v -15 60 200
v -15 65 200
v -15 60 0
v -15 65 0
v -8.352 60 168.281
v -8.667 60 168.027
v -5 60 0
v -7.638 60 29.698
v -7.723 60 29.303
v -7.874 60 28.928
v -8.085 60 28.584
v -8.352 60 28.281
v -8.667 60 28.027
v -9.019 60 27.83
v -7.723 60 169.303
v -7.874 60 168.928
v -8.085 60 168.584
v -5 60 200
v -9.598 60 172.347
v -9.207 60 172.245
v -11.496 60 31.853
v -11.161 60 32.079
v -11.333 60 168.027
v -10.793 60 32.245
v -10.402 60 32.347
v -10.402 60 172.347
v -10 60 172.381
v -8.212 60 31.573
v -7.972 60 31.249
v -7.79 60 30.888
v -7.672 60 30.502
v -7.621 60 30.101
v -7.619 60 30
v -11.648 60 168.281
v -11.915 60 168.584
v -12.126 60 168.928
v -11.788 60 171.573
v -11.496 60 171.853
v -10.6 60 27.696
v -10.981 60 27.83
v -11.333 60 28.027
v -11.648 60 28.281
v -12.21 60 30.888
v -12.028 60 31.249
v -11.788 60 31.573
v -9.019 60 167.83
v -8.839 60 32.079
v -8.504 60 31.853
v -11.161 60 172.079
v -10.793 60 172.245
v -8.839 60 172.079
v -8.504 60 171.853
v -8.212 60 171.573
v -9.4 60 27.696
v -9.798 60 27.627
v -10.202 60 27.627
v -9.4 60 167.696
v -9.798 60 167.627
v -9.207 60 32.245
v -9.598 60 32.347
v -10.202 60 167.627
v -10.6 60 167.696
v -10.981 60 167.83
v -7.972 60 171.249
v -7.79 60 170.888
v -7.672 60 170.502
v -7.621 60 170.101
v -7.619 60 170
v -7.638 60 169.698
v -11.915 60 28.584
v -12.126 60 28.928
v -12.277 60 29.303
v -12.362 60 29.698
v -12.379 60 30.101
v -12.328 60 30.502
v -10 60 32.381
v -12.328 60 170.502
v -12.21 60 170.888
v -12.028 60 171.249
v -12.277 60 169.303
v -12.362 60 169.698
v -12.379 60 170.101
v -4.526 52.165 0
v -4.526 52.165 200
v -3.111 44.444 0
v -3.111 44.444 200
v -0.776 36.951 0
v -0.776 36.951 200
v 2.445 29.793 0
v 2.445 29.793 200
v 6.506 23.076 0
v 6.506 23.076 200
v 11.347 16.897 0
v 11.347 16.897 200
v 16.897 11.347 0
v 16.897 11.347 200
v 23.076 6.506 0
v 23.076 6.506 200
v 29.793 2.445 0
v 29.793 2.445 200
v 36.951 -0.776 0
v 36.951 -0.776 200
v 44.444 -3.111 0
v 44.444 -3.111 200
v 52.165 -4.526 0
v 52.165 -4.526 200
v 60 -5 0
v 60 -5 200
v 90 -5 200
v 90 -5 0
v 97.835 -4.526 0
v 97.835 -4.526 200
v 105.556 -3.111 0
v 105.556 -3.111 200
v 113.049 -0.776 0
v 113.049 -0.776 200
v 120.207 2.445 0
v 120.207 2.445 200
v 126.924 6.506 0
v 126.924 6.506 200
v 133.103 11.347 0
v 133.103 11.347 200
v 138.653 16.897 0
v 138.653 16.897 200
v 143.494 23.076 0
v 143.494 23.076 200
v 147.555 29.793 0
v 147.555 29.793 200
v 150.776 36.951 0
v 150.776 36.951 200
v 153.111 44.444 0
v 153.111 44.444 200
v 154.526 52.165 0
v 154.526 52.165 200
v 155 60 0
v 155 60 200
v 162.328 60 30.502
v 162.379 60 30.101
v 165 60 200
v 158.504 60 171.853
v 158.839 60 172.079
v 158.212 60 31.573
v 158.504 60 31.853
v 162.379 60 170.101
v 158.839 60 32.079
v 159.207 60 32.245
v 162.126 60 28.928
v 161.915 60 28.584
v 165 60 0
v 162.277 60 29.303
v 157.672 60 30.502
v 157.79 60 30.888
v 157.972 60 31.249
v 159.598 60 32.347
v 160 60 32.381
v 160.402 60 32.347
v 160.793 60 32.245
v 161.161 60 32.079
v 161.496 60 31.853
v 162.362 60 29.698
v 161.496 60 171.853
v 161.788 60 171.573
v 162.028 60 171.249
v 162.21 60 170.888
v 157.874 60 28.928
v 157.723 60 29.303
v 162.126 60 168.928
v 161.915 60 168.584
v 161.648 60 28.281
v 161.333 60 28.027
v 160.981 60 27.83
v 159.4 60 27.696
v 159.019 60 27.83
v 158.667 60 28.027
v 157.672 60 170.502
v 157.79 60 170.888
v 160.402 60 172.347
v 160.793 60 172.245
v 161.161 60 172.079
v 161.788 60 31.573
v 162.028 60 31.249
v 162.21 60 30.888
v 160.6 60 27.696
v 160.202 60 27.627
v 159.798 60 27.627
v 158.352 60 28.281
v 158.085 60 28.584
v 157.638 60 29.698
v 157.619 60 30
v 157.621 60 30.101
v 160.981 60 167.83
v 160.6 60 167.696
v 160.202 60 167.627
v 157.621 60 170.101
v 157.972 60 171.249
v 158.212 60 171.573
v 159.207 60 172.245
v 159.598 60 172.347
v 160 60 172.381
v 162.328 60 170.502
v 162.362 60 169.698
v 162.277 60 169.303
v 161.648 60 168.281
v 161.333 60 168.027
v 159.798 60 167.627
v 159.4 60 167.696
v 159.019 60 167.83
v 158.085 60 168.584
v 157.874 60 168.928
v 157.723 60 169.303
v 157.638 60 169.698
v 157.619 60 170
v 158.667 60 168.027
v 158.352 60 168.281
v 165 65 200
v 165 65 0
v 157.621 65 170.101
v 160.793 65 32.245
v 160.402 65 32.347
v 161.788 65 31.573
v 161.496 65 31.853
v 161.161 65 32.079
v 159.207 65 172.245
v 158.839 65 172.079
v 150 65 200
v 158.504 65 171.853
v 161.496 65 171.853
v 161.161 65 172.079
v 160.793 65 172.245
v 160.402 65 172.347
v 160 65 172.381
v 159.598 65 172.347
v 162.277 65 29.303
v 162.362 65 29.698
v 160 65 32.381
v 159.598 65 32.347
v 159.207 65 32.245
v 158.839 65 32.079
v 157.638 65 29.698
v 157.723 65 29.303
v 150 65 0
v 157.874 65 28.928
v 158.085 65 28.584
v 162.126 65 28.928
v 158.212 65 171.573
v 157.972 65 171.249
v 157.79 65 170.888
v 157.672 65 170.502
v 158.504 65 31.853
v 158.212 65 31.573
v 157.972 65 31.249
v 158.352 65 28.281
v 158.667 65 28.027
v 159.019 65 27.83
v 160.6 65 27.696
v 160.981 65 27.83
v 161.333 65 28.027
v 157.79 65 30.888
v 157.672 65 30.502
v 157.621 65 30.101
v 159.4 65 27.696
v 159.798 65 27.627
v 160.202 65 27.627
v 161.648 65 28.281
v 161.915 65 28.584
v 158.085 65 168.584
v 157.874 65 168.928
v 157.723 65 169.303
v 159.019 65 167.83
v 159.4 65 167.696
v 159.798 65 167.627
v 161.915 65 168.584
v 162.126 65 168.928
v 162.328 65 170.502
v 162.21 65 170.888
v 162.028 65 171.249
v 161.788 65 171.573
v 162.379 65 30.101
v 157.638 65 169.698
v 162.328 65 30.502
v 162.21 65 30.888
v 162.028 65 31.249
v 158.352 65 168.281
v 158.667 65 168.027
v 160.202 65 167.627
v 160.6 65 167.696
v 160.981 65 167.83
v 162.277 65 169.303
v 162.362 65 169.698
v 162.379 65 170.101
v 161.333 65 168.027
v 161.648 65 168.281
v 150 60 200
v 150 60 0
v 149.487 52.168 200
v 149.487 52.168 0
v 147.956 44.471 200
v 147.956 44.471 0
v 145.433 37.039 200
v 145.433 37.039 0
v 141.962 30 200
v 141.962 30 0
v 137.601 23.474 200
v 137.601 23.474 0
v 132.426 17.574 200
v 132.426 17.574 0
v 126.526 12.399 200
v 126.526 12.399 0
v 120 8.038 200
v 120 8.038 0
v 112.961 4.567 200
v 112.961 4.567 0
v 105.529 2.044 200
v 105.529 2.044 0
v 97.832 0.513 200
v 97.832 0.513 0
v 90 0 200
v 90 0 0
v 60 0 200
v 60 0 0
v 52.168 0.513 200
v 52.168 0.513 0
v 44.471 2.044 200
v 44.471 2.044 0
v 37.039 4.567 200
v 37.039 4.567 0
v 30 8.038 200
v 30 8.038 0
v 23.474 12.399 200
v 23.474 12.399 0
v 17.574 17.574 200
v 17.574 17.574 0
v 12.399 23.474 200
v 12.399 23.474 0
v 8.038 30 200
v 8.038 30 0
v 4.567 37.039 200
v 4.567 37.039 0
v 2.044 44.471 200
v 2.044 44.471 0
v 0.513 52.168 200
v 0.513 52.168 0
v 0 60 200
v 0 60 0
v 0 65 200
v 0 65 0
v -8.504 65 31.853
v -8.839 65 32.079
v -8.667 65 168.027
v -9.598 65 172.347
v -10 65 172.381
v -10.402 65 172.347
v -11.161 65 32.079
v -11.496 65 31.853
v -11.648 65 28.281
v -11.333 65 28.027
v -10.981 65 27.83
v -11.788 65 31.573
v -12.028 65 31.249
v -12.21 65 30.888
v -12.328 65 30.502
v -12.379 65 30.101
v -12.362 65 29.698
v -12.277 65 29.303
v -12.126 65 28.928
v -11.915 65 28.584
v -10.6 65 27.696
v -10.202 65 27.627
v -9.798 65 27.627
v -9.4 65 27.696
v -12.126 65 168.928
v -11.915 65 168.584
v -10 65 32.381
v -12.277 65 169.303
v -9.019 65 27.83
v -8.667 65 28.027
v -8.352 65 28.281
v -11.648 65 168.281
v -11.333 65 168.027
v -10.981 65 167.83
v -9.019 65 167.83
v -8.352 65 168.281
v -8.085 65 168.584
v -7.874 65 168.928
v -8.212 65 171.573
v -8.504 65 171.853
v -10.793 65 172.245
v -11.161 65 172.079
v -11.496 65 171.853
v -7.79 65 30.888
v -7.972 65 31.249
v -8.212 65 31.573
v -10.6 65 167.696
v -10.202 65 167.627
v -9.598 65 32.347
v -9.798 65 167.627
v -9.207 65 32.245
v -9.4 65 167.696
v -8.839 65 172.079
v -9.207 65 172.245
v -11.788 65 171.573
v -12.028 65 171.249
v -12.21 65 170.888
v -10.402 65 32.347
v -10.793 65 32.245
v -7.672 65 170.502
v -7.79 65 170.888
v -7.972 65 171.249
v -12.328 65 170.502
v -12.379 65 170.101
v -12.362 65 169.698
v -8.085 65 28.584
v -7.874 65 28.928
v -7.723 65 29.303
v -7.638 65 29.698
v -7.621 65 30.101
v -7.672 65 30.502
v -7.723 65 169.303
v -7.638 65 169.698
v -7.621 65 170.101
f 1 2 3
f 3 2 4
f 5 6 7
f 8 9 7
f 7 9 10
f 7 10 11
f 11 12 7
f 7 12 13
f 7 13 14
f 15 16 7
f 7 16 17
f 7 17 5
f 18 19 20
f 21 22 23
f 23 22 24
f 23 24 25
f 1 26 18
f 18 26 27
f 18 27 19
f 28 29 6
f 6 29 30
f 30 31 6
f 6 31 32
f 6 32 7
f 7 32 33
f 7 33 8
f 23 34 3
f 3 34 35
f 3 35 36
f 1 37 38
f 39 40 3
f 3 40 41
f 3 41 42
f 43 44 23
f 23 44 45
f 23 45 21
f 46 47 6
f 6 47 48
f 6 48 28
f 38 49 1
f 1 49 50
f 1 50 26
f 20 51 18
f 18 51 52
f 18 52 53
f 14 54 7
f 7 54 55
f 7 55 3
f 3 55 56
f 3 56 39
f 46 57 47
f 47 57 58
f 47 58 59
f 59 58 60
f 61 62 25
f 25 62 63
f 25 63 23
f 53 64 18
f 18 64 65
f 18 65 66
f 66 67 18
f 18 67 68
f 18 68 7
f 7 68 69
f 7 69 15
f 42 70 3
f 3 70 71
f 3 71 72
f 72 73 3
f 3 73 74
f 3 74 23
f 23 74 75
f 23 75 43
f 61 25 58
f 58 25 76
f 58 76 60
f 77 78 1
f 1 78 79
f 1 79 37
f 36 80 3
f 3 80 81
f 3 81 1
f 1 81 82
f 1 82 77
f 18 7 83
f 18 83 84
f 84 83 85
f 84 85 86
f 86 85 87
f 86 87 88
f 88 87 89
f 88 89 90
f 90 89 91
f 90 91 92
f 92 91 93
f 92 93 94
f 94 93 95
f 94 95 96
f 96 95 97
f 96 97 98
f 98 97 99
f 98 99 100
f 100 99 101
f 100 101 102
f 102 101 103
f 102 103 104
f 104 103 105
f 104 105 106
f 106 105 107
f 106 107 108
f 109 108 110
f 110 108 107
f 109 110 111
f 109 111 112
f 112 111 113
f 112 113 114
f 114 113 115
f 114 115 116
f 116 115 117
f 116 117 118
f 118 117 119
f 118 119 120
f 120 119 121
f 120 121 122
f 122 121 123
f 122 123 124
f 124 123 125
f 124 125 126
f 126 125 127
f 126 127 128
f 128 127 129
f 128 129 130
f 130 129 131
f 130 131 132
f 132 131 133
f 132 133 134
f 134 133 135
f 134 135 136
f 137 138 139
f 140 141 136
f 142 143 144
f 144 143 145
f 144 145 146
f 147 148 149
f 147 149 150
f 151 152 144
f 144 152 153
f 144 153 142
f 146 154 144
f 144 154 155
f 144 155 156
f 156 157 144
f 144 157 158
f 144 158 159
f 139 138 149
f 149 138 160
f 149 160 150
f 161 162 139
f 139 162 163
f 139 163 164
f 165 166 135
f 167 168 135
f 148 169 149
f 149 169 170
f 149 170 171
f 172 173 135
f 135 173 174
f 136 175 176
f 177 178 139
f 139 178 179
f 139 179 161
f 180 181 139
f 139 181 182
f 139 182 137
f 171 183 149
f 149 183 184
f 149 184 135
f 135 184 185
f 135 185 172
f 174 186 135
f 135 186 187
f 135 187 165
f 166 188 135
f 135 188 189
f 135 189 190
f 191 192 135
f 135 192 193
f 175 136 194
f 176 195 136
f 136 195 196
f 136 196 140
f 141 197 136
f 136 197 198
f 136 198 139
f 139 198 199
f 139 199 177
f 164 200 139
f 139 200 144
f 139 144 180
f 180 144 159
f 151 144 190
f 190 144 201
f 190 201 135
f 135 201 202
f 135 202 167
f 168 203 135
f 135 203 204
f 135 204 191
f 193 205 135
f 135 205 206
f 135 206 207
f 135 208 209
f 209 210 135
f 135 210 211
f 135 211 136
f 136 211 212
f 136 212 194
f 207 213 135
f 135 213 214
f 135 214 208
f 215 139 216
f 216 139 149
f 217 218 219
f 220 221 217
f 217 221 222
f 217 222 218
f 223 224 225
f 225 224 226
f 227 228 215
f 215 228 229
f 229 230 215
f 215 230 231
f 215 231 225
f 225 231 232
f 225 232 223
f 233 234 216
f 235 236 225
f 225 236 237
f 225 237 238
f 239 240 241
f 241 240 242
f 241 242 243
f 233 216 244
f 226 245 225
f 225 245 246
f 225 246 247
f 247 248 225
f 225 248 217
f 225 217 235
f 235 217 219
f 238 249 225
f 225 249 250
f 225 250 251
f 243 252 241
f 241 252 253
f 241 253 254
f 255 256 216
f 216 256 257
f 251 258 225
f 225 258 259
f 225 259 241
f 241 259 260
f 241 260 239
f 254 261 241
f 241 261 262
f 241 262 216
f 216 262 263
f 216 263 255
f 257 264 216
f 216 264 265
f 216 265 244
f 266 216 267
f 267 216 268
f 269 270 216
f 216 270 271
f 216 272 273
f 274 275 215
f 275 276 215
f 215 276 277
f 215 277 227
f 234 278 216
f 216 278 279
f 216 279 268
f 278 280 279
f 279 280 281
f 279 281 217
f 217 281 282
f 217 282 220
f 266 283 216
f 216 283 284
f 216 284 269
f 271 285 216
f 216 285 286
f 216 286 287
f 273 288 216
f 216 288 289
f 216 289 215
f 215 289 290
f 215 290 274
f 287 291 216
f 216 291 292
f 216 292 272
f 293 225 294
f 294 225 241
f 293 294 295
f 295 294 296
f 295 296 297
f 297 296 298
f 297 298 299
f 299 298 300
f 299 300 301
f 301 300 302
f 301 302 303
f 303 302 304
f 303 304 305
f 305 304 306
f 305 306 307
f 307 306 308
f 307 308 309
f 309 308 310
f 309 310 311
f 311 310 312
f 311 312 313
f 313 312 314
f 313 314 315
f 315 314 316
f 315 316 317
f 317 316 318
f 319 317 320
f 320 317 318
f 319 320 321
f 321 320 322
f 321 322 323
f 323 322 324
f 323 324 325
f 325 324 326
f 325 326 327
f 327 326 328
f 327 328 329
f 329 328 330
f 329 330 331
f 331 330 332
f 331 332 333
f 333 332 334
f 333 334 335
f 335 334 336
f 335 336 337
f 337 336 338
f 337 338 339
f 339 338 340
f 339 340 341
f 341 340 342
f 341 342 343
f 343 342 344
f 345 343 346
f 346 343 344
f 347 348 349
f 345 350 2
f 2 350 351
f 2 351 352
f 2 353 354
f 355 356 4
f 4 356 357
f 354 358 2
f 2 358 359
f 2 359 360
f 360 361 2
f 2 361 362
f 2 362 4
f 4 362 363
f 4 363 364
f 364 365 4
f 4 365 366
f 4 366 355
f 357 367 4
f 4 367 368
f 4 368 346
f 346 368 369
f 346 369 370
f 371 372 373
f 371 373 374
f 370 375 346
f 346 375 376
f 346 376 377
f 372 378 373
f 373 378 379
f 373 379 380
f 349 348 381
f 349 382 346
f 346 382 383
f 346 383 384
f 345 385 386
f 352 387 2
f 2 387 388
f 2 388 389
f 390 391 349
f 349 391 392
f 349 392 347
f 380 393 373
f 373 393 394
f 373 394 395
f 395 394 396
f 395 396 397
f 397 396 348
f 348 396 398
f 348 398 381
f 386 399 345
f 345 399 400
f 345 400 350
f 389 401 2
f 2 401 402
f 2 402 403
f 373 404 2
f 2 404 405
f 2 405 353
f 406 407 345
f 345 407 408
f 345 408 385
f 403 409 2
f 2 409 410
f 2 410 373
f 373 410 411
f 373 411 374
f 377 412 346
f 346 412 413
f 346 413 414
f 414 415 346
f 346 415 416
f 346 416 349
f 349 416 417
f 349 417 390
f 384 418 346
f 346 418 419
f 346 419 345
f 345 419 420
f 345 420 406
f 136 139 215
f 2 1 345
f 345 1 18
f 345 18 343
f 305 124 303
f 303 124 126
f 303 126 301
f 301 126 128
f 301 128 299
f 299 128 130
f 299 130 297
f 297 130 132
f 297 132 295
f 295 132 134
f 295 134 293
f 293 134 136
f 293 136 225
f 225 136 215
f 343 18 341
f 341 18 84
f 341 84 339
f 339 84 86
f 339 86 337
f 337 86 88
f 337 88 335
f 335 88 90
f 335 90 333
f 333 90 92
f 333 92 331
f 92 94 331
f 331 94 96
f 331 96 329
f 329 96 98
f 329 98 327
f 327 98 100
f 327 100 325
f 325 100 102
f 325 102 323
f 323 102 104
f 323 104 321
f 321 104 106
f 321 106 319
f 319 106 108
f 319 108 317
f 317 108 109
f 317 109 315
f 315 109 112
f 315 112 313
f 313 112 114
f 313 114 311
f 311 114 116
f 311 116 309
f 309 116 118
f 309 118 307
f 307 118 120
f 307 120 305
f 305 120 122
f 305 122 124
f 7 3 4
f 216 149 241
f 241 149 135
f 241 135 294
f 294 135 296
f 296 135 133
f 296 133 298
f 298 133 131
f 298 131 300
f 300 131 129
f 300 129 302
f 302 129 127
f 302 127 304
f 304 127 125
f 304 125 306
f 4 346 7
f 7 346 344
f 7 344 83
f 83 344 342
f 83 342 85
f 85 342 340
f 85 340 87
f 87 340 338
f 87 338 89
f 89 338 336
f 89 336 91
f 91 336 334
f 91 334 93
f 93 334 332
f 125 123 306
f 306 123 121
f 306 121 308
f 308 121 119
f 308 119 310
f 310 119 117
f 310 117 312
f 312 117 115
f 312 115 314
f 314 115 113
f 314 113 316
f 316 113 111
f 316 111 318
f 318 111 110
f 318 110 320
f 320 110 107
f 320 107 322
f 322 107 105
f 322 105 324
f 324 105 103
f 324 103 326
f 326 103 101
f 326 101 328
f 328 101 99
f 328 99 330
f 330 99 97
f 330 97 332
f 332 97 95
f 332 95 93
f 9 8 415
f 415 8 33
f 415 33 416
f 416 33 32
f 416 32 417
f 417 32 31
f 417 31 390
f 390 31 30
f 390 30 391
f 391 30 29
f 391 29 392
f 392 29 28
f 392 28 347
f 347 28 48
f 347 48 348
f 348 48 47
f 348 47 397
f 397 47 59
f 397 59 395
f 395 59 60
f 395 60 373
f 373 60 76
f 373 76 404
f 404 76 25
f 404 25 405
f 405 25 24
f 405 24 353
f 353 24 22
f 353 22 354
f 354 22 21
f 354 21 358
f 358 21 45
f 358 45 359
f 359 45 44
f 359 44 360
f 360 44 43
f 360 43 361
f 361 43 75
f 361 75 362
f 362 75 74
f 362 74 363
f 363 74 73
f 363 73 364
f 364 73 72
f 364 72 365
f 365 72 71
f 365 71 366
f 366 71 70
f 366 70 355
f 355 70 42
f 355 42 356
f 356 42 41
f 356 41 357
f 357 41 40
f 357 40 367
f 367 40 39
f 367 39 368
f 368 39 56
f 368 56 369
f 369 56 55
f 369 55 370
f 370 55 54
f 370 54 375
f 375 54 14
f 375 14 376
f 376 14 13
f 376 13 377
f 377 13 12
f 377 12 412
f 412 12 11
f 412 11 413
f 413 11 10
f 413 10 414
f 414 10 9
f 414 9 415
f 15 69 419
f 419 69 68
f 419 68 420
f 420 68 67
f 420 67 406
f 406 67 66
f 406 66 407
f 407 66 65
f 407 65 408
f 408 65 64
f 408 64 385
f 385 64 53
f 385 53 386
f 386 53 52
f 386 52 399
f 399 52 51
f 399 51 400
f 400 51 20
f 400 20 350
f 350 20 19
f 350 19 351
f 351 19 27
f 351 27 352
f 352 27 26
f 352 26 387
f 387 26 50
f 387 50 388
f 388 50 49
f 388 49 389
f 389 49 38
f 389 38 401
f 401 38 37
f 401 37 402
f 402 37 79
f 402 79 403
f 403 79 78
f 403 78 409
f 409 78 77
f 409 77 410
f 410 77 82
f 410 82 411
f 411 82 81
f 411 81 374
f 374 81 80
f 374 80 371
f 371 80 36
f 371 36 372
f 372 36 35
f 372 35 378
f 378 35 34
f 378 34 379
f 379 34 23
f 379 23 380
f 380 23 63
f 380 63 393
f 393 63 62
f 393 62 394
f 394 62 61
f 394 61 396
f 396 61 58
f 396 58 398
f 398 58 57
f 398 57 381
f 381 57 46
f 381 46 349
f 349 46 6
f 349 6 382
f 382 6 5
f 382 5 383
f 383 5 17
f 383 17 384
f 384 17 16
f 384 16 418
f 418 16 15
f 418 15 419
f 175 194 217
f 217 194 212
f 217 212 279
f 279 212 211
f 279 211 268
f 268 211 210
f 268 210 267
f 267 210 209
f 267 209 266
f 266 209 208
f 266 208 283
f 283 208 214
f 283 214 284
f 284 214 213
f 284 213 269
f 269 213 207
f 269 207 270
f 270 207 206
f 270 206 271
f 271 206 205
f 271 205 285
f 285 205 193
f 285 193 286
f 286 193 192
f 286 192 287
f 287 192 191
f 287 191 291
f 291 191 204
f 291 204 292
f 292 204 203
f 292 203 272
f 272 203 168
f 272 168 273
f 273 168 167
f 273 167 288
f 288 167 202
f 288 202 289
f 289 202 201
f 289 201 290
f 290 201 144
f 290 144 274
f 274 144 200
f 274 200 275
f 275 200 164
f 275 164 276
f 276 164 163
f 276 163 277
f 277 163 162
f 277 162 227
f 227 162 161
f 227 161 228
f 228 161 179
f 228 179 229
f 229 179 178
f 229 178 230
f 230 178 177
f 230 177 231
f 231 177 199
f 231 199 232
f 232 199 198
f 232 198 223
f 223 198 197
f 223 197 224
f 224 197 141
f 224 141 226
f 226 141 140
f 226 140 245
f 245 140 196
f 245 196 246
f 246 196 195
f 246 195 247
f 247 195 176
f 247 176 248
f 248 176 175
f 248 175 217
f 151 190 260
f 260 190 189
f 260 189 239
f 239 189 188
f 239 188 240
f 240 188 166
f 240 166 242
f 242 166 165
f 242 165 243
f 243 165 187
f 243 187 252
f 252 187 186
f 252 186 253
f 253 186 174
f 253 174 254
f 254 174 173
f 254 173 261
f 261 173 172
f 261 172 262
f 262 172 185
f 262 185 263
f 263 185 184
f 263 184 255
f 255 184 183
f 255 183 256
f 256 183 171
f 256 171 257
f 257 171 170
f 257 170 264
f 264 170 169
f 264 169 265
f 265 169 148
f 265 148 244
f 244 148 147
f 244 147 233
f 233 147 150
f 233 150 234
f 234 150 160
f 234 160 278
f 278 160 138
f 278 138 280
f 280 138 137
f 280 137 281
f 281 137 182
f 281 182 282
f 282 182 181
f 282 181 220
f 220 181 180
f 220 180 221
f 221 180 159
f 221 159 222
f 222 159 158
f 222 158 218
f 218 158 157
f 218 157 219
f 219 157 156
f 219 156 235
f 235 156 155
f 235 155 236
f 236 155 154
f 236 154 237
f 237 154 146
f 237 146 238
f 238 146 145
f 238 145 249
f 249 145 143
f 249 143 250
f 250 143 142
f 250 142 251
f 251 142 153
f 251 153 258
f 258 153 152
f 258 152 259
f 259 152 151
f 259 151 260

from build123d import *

# Parameters (mm, degrees)
SKETCH1_W           = 10
SKETCH1_H           = 5
BOSS_EXTRUDE1_DEPTH = 200
SKETCH2_R           = 2.38125
CUT_EXTRUDE1_DEPTH  = 200


with BuildPart() as part:
    # Sketch1 → Boss-Extrude1 (new body)
    with BuildSketch(Plane.XY):
        with Locations((-10, 62.5)):
            Rectangle(SKETCH1_W, SKETCH1_H)
        with BuildLine():
            Line((90, 0), (60, 0))
            ThreePointArc((60, 0), (17.573593129, 17.573593129), (0, 60))
            Line((0, 60), (0, 65))
            Line((0, 65), (-5, 65))
            Line((-5, 65), (-5, 60))
            ThreePointArc((-5, 60), (14.038059223, 14.038059223), (60, -5))
            Line((60, -5), (90, -5))
            ThreePointArc((90, -5), (135.961940777, 14.038059223), (155, 60))
            Line((155, 60), (155, 65))
            Line((155, 65), (150, 65))
            Line((150, 65), (150, 60))
            ThreePointArc((150, 60), (132.426406871, 17.573593129), (90, 0))
        make_face()
        with Locations((160, 62.5)):
            Rectangle(SKETCH1_W, SKETCH1_H)
    extrude(amount=BOSS_EXTRUDE1_DEPTH)

    # Sketch2 → Cut-Extrude1 (cut)
    with BuildSketch(Plane(origin=(0, 65, 0), x_dir=(1, 0, 0), z_dir=(0, 1, 0))):
        with Locations((-10, -170)):
            Circle(SKETCH2_R)
        with Locations((-10, -30)):
            Circle(SKETCH2_R)
        with Locations((160, -30)):
            Circle(SKETCH2_R)
        with Locations((160, -170)):
            Circle(SKETCH2_R)
    extrude(amount=-CUT_EXTRUDE1_DEPTH, mode=Mode.SUBTRACT)


solid = part.part
